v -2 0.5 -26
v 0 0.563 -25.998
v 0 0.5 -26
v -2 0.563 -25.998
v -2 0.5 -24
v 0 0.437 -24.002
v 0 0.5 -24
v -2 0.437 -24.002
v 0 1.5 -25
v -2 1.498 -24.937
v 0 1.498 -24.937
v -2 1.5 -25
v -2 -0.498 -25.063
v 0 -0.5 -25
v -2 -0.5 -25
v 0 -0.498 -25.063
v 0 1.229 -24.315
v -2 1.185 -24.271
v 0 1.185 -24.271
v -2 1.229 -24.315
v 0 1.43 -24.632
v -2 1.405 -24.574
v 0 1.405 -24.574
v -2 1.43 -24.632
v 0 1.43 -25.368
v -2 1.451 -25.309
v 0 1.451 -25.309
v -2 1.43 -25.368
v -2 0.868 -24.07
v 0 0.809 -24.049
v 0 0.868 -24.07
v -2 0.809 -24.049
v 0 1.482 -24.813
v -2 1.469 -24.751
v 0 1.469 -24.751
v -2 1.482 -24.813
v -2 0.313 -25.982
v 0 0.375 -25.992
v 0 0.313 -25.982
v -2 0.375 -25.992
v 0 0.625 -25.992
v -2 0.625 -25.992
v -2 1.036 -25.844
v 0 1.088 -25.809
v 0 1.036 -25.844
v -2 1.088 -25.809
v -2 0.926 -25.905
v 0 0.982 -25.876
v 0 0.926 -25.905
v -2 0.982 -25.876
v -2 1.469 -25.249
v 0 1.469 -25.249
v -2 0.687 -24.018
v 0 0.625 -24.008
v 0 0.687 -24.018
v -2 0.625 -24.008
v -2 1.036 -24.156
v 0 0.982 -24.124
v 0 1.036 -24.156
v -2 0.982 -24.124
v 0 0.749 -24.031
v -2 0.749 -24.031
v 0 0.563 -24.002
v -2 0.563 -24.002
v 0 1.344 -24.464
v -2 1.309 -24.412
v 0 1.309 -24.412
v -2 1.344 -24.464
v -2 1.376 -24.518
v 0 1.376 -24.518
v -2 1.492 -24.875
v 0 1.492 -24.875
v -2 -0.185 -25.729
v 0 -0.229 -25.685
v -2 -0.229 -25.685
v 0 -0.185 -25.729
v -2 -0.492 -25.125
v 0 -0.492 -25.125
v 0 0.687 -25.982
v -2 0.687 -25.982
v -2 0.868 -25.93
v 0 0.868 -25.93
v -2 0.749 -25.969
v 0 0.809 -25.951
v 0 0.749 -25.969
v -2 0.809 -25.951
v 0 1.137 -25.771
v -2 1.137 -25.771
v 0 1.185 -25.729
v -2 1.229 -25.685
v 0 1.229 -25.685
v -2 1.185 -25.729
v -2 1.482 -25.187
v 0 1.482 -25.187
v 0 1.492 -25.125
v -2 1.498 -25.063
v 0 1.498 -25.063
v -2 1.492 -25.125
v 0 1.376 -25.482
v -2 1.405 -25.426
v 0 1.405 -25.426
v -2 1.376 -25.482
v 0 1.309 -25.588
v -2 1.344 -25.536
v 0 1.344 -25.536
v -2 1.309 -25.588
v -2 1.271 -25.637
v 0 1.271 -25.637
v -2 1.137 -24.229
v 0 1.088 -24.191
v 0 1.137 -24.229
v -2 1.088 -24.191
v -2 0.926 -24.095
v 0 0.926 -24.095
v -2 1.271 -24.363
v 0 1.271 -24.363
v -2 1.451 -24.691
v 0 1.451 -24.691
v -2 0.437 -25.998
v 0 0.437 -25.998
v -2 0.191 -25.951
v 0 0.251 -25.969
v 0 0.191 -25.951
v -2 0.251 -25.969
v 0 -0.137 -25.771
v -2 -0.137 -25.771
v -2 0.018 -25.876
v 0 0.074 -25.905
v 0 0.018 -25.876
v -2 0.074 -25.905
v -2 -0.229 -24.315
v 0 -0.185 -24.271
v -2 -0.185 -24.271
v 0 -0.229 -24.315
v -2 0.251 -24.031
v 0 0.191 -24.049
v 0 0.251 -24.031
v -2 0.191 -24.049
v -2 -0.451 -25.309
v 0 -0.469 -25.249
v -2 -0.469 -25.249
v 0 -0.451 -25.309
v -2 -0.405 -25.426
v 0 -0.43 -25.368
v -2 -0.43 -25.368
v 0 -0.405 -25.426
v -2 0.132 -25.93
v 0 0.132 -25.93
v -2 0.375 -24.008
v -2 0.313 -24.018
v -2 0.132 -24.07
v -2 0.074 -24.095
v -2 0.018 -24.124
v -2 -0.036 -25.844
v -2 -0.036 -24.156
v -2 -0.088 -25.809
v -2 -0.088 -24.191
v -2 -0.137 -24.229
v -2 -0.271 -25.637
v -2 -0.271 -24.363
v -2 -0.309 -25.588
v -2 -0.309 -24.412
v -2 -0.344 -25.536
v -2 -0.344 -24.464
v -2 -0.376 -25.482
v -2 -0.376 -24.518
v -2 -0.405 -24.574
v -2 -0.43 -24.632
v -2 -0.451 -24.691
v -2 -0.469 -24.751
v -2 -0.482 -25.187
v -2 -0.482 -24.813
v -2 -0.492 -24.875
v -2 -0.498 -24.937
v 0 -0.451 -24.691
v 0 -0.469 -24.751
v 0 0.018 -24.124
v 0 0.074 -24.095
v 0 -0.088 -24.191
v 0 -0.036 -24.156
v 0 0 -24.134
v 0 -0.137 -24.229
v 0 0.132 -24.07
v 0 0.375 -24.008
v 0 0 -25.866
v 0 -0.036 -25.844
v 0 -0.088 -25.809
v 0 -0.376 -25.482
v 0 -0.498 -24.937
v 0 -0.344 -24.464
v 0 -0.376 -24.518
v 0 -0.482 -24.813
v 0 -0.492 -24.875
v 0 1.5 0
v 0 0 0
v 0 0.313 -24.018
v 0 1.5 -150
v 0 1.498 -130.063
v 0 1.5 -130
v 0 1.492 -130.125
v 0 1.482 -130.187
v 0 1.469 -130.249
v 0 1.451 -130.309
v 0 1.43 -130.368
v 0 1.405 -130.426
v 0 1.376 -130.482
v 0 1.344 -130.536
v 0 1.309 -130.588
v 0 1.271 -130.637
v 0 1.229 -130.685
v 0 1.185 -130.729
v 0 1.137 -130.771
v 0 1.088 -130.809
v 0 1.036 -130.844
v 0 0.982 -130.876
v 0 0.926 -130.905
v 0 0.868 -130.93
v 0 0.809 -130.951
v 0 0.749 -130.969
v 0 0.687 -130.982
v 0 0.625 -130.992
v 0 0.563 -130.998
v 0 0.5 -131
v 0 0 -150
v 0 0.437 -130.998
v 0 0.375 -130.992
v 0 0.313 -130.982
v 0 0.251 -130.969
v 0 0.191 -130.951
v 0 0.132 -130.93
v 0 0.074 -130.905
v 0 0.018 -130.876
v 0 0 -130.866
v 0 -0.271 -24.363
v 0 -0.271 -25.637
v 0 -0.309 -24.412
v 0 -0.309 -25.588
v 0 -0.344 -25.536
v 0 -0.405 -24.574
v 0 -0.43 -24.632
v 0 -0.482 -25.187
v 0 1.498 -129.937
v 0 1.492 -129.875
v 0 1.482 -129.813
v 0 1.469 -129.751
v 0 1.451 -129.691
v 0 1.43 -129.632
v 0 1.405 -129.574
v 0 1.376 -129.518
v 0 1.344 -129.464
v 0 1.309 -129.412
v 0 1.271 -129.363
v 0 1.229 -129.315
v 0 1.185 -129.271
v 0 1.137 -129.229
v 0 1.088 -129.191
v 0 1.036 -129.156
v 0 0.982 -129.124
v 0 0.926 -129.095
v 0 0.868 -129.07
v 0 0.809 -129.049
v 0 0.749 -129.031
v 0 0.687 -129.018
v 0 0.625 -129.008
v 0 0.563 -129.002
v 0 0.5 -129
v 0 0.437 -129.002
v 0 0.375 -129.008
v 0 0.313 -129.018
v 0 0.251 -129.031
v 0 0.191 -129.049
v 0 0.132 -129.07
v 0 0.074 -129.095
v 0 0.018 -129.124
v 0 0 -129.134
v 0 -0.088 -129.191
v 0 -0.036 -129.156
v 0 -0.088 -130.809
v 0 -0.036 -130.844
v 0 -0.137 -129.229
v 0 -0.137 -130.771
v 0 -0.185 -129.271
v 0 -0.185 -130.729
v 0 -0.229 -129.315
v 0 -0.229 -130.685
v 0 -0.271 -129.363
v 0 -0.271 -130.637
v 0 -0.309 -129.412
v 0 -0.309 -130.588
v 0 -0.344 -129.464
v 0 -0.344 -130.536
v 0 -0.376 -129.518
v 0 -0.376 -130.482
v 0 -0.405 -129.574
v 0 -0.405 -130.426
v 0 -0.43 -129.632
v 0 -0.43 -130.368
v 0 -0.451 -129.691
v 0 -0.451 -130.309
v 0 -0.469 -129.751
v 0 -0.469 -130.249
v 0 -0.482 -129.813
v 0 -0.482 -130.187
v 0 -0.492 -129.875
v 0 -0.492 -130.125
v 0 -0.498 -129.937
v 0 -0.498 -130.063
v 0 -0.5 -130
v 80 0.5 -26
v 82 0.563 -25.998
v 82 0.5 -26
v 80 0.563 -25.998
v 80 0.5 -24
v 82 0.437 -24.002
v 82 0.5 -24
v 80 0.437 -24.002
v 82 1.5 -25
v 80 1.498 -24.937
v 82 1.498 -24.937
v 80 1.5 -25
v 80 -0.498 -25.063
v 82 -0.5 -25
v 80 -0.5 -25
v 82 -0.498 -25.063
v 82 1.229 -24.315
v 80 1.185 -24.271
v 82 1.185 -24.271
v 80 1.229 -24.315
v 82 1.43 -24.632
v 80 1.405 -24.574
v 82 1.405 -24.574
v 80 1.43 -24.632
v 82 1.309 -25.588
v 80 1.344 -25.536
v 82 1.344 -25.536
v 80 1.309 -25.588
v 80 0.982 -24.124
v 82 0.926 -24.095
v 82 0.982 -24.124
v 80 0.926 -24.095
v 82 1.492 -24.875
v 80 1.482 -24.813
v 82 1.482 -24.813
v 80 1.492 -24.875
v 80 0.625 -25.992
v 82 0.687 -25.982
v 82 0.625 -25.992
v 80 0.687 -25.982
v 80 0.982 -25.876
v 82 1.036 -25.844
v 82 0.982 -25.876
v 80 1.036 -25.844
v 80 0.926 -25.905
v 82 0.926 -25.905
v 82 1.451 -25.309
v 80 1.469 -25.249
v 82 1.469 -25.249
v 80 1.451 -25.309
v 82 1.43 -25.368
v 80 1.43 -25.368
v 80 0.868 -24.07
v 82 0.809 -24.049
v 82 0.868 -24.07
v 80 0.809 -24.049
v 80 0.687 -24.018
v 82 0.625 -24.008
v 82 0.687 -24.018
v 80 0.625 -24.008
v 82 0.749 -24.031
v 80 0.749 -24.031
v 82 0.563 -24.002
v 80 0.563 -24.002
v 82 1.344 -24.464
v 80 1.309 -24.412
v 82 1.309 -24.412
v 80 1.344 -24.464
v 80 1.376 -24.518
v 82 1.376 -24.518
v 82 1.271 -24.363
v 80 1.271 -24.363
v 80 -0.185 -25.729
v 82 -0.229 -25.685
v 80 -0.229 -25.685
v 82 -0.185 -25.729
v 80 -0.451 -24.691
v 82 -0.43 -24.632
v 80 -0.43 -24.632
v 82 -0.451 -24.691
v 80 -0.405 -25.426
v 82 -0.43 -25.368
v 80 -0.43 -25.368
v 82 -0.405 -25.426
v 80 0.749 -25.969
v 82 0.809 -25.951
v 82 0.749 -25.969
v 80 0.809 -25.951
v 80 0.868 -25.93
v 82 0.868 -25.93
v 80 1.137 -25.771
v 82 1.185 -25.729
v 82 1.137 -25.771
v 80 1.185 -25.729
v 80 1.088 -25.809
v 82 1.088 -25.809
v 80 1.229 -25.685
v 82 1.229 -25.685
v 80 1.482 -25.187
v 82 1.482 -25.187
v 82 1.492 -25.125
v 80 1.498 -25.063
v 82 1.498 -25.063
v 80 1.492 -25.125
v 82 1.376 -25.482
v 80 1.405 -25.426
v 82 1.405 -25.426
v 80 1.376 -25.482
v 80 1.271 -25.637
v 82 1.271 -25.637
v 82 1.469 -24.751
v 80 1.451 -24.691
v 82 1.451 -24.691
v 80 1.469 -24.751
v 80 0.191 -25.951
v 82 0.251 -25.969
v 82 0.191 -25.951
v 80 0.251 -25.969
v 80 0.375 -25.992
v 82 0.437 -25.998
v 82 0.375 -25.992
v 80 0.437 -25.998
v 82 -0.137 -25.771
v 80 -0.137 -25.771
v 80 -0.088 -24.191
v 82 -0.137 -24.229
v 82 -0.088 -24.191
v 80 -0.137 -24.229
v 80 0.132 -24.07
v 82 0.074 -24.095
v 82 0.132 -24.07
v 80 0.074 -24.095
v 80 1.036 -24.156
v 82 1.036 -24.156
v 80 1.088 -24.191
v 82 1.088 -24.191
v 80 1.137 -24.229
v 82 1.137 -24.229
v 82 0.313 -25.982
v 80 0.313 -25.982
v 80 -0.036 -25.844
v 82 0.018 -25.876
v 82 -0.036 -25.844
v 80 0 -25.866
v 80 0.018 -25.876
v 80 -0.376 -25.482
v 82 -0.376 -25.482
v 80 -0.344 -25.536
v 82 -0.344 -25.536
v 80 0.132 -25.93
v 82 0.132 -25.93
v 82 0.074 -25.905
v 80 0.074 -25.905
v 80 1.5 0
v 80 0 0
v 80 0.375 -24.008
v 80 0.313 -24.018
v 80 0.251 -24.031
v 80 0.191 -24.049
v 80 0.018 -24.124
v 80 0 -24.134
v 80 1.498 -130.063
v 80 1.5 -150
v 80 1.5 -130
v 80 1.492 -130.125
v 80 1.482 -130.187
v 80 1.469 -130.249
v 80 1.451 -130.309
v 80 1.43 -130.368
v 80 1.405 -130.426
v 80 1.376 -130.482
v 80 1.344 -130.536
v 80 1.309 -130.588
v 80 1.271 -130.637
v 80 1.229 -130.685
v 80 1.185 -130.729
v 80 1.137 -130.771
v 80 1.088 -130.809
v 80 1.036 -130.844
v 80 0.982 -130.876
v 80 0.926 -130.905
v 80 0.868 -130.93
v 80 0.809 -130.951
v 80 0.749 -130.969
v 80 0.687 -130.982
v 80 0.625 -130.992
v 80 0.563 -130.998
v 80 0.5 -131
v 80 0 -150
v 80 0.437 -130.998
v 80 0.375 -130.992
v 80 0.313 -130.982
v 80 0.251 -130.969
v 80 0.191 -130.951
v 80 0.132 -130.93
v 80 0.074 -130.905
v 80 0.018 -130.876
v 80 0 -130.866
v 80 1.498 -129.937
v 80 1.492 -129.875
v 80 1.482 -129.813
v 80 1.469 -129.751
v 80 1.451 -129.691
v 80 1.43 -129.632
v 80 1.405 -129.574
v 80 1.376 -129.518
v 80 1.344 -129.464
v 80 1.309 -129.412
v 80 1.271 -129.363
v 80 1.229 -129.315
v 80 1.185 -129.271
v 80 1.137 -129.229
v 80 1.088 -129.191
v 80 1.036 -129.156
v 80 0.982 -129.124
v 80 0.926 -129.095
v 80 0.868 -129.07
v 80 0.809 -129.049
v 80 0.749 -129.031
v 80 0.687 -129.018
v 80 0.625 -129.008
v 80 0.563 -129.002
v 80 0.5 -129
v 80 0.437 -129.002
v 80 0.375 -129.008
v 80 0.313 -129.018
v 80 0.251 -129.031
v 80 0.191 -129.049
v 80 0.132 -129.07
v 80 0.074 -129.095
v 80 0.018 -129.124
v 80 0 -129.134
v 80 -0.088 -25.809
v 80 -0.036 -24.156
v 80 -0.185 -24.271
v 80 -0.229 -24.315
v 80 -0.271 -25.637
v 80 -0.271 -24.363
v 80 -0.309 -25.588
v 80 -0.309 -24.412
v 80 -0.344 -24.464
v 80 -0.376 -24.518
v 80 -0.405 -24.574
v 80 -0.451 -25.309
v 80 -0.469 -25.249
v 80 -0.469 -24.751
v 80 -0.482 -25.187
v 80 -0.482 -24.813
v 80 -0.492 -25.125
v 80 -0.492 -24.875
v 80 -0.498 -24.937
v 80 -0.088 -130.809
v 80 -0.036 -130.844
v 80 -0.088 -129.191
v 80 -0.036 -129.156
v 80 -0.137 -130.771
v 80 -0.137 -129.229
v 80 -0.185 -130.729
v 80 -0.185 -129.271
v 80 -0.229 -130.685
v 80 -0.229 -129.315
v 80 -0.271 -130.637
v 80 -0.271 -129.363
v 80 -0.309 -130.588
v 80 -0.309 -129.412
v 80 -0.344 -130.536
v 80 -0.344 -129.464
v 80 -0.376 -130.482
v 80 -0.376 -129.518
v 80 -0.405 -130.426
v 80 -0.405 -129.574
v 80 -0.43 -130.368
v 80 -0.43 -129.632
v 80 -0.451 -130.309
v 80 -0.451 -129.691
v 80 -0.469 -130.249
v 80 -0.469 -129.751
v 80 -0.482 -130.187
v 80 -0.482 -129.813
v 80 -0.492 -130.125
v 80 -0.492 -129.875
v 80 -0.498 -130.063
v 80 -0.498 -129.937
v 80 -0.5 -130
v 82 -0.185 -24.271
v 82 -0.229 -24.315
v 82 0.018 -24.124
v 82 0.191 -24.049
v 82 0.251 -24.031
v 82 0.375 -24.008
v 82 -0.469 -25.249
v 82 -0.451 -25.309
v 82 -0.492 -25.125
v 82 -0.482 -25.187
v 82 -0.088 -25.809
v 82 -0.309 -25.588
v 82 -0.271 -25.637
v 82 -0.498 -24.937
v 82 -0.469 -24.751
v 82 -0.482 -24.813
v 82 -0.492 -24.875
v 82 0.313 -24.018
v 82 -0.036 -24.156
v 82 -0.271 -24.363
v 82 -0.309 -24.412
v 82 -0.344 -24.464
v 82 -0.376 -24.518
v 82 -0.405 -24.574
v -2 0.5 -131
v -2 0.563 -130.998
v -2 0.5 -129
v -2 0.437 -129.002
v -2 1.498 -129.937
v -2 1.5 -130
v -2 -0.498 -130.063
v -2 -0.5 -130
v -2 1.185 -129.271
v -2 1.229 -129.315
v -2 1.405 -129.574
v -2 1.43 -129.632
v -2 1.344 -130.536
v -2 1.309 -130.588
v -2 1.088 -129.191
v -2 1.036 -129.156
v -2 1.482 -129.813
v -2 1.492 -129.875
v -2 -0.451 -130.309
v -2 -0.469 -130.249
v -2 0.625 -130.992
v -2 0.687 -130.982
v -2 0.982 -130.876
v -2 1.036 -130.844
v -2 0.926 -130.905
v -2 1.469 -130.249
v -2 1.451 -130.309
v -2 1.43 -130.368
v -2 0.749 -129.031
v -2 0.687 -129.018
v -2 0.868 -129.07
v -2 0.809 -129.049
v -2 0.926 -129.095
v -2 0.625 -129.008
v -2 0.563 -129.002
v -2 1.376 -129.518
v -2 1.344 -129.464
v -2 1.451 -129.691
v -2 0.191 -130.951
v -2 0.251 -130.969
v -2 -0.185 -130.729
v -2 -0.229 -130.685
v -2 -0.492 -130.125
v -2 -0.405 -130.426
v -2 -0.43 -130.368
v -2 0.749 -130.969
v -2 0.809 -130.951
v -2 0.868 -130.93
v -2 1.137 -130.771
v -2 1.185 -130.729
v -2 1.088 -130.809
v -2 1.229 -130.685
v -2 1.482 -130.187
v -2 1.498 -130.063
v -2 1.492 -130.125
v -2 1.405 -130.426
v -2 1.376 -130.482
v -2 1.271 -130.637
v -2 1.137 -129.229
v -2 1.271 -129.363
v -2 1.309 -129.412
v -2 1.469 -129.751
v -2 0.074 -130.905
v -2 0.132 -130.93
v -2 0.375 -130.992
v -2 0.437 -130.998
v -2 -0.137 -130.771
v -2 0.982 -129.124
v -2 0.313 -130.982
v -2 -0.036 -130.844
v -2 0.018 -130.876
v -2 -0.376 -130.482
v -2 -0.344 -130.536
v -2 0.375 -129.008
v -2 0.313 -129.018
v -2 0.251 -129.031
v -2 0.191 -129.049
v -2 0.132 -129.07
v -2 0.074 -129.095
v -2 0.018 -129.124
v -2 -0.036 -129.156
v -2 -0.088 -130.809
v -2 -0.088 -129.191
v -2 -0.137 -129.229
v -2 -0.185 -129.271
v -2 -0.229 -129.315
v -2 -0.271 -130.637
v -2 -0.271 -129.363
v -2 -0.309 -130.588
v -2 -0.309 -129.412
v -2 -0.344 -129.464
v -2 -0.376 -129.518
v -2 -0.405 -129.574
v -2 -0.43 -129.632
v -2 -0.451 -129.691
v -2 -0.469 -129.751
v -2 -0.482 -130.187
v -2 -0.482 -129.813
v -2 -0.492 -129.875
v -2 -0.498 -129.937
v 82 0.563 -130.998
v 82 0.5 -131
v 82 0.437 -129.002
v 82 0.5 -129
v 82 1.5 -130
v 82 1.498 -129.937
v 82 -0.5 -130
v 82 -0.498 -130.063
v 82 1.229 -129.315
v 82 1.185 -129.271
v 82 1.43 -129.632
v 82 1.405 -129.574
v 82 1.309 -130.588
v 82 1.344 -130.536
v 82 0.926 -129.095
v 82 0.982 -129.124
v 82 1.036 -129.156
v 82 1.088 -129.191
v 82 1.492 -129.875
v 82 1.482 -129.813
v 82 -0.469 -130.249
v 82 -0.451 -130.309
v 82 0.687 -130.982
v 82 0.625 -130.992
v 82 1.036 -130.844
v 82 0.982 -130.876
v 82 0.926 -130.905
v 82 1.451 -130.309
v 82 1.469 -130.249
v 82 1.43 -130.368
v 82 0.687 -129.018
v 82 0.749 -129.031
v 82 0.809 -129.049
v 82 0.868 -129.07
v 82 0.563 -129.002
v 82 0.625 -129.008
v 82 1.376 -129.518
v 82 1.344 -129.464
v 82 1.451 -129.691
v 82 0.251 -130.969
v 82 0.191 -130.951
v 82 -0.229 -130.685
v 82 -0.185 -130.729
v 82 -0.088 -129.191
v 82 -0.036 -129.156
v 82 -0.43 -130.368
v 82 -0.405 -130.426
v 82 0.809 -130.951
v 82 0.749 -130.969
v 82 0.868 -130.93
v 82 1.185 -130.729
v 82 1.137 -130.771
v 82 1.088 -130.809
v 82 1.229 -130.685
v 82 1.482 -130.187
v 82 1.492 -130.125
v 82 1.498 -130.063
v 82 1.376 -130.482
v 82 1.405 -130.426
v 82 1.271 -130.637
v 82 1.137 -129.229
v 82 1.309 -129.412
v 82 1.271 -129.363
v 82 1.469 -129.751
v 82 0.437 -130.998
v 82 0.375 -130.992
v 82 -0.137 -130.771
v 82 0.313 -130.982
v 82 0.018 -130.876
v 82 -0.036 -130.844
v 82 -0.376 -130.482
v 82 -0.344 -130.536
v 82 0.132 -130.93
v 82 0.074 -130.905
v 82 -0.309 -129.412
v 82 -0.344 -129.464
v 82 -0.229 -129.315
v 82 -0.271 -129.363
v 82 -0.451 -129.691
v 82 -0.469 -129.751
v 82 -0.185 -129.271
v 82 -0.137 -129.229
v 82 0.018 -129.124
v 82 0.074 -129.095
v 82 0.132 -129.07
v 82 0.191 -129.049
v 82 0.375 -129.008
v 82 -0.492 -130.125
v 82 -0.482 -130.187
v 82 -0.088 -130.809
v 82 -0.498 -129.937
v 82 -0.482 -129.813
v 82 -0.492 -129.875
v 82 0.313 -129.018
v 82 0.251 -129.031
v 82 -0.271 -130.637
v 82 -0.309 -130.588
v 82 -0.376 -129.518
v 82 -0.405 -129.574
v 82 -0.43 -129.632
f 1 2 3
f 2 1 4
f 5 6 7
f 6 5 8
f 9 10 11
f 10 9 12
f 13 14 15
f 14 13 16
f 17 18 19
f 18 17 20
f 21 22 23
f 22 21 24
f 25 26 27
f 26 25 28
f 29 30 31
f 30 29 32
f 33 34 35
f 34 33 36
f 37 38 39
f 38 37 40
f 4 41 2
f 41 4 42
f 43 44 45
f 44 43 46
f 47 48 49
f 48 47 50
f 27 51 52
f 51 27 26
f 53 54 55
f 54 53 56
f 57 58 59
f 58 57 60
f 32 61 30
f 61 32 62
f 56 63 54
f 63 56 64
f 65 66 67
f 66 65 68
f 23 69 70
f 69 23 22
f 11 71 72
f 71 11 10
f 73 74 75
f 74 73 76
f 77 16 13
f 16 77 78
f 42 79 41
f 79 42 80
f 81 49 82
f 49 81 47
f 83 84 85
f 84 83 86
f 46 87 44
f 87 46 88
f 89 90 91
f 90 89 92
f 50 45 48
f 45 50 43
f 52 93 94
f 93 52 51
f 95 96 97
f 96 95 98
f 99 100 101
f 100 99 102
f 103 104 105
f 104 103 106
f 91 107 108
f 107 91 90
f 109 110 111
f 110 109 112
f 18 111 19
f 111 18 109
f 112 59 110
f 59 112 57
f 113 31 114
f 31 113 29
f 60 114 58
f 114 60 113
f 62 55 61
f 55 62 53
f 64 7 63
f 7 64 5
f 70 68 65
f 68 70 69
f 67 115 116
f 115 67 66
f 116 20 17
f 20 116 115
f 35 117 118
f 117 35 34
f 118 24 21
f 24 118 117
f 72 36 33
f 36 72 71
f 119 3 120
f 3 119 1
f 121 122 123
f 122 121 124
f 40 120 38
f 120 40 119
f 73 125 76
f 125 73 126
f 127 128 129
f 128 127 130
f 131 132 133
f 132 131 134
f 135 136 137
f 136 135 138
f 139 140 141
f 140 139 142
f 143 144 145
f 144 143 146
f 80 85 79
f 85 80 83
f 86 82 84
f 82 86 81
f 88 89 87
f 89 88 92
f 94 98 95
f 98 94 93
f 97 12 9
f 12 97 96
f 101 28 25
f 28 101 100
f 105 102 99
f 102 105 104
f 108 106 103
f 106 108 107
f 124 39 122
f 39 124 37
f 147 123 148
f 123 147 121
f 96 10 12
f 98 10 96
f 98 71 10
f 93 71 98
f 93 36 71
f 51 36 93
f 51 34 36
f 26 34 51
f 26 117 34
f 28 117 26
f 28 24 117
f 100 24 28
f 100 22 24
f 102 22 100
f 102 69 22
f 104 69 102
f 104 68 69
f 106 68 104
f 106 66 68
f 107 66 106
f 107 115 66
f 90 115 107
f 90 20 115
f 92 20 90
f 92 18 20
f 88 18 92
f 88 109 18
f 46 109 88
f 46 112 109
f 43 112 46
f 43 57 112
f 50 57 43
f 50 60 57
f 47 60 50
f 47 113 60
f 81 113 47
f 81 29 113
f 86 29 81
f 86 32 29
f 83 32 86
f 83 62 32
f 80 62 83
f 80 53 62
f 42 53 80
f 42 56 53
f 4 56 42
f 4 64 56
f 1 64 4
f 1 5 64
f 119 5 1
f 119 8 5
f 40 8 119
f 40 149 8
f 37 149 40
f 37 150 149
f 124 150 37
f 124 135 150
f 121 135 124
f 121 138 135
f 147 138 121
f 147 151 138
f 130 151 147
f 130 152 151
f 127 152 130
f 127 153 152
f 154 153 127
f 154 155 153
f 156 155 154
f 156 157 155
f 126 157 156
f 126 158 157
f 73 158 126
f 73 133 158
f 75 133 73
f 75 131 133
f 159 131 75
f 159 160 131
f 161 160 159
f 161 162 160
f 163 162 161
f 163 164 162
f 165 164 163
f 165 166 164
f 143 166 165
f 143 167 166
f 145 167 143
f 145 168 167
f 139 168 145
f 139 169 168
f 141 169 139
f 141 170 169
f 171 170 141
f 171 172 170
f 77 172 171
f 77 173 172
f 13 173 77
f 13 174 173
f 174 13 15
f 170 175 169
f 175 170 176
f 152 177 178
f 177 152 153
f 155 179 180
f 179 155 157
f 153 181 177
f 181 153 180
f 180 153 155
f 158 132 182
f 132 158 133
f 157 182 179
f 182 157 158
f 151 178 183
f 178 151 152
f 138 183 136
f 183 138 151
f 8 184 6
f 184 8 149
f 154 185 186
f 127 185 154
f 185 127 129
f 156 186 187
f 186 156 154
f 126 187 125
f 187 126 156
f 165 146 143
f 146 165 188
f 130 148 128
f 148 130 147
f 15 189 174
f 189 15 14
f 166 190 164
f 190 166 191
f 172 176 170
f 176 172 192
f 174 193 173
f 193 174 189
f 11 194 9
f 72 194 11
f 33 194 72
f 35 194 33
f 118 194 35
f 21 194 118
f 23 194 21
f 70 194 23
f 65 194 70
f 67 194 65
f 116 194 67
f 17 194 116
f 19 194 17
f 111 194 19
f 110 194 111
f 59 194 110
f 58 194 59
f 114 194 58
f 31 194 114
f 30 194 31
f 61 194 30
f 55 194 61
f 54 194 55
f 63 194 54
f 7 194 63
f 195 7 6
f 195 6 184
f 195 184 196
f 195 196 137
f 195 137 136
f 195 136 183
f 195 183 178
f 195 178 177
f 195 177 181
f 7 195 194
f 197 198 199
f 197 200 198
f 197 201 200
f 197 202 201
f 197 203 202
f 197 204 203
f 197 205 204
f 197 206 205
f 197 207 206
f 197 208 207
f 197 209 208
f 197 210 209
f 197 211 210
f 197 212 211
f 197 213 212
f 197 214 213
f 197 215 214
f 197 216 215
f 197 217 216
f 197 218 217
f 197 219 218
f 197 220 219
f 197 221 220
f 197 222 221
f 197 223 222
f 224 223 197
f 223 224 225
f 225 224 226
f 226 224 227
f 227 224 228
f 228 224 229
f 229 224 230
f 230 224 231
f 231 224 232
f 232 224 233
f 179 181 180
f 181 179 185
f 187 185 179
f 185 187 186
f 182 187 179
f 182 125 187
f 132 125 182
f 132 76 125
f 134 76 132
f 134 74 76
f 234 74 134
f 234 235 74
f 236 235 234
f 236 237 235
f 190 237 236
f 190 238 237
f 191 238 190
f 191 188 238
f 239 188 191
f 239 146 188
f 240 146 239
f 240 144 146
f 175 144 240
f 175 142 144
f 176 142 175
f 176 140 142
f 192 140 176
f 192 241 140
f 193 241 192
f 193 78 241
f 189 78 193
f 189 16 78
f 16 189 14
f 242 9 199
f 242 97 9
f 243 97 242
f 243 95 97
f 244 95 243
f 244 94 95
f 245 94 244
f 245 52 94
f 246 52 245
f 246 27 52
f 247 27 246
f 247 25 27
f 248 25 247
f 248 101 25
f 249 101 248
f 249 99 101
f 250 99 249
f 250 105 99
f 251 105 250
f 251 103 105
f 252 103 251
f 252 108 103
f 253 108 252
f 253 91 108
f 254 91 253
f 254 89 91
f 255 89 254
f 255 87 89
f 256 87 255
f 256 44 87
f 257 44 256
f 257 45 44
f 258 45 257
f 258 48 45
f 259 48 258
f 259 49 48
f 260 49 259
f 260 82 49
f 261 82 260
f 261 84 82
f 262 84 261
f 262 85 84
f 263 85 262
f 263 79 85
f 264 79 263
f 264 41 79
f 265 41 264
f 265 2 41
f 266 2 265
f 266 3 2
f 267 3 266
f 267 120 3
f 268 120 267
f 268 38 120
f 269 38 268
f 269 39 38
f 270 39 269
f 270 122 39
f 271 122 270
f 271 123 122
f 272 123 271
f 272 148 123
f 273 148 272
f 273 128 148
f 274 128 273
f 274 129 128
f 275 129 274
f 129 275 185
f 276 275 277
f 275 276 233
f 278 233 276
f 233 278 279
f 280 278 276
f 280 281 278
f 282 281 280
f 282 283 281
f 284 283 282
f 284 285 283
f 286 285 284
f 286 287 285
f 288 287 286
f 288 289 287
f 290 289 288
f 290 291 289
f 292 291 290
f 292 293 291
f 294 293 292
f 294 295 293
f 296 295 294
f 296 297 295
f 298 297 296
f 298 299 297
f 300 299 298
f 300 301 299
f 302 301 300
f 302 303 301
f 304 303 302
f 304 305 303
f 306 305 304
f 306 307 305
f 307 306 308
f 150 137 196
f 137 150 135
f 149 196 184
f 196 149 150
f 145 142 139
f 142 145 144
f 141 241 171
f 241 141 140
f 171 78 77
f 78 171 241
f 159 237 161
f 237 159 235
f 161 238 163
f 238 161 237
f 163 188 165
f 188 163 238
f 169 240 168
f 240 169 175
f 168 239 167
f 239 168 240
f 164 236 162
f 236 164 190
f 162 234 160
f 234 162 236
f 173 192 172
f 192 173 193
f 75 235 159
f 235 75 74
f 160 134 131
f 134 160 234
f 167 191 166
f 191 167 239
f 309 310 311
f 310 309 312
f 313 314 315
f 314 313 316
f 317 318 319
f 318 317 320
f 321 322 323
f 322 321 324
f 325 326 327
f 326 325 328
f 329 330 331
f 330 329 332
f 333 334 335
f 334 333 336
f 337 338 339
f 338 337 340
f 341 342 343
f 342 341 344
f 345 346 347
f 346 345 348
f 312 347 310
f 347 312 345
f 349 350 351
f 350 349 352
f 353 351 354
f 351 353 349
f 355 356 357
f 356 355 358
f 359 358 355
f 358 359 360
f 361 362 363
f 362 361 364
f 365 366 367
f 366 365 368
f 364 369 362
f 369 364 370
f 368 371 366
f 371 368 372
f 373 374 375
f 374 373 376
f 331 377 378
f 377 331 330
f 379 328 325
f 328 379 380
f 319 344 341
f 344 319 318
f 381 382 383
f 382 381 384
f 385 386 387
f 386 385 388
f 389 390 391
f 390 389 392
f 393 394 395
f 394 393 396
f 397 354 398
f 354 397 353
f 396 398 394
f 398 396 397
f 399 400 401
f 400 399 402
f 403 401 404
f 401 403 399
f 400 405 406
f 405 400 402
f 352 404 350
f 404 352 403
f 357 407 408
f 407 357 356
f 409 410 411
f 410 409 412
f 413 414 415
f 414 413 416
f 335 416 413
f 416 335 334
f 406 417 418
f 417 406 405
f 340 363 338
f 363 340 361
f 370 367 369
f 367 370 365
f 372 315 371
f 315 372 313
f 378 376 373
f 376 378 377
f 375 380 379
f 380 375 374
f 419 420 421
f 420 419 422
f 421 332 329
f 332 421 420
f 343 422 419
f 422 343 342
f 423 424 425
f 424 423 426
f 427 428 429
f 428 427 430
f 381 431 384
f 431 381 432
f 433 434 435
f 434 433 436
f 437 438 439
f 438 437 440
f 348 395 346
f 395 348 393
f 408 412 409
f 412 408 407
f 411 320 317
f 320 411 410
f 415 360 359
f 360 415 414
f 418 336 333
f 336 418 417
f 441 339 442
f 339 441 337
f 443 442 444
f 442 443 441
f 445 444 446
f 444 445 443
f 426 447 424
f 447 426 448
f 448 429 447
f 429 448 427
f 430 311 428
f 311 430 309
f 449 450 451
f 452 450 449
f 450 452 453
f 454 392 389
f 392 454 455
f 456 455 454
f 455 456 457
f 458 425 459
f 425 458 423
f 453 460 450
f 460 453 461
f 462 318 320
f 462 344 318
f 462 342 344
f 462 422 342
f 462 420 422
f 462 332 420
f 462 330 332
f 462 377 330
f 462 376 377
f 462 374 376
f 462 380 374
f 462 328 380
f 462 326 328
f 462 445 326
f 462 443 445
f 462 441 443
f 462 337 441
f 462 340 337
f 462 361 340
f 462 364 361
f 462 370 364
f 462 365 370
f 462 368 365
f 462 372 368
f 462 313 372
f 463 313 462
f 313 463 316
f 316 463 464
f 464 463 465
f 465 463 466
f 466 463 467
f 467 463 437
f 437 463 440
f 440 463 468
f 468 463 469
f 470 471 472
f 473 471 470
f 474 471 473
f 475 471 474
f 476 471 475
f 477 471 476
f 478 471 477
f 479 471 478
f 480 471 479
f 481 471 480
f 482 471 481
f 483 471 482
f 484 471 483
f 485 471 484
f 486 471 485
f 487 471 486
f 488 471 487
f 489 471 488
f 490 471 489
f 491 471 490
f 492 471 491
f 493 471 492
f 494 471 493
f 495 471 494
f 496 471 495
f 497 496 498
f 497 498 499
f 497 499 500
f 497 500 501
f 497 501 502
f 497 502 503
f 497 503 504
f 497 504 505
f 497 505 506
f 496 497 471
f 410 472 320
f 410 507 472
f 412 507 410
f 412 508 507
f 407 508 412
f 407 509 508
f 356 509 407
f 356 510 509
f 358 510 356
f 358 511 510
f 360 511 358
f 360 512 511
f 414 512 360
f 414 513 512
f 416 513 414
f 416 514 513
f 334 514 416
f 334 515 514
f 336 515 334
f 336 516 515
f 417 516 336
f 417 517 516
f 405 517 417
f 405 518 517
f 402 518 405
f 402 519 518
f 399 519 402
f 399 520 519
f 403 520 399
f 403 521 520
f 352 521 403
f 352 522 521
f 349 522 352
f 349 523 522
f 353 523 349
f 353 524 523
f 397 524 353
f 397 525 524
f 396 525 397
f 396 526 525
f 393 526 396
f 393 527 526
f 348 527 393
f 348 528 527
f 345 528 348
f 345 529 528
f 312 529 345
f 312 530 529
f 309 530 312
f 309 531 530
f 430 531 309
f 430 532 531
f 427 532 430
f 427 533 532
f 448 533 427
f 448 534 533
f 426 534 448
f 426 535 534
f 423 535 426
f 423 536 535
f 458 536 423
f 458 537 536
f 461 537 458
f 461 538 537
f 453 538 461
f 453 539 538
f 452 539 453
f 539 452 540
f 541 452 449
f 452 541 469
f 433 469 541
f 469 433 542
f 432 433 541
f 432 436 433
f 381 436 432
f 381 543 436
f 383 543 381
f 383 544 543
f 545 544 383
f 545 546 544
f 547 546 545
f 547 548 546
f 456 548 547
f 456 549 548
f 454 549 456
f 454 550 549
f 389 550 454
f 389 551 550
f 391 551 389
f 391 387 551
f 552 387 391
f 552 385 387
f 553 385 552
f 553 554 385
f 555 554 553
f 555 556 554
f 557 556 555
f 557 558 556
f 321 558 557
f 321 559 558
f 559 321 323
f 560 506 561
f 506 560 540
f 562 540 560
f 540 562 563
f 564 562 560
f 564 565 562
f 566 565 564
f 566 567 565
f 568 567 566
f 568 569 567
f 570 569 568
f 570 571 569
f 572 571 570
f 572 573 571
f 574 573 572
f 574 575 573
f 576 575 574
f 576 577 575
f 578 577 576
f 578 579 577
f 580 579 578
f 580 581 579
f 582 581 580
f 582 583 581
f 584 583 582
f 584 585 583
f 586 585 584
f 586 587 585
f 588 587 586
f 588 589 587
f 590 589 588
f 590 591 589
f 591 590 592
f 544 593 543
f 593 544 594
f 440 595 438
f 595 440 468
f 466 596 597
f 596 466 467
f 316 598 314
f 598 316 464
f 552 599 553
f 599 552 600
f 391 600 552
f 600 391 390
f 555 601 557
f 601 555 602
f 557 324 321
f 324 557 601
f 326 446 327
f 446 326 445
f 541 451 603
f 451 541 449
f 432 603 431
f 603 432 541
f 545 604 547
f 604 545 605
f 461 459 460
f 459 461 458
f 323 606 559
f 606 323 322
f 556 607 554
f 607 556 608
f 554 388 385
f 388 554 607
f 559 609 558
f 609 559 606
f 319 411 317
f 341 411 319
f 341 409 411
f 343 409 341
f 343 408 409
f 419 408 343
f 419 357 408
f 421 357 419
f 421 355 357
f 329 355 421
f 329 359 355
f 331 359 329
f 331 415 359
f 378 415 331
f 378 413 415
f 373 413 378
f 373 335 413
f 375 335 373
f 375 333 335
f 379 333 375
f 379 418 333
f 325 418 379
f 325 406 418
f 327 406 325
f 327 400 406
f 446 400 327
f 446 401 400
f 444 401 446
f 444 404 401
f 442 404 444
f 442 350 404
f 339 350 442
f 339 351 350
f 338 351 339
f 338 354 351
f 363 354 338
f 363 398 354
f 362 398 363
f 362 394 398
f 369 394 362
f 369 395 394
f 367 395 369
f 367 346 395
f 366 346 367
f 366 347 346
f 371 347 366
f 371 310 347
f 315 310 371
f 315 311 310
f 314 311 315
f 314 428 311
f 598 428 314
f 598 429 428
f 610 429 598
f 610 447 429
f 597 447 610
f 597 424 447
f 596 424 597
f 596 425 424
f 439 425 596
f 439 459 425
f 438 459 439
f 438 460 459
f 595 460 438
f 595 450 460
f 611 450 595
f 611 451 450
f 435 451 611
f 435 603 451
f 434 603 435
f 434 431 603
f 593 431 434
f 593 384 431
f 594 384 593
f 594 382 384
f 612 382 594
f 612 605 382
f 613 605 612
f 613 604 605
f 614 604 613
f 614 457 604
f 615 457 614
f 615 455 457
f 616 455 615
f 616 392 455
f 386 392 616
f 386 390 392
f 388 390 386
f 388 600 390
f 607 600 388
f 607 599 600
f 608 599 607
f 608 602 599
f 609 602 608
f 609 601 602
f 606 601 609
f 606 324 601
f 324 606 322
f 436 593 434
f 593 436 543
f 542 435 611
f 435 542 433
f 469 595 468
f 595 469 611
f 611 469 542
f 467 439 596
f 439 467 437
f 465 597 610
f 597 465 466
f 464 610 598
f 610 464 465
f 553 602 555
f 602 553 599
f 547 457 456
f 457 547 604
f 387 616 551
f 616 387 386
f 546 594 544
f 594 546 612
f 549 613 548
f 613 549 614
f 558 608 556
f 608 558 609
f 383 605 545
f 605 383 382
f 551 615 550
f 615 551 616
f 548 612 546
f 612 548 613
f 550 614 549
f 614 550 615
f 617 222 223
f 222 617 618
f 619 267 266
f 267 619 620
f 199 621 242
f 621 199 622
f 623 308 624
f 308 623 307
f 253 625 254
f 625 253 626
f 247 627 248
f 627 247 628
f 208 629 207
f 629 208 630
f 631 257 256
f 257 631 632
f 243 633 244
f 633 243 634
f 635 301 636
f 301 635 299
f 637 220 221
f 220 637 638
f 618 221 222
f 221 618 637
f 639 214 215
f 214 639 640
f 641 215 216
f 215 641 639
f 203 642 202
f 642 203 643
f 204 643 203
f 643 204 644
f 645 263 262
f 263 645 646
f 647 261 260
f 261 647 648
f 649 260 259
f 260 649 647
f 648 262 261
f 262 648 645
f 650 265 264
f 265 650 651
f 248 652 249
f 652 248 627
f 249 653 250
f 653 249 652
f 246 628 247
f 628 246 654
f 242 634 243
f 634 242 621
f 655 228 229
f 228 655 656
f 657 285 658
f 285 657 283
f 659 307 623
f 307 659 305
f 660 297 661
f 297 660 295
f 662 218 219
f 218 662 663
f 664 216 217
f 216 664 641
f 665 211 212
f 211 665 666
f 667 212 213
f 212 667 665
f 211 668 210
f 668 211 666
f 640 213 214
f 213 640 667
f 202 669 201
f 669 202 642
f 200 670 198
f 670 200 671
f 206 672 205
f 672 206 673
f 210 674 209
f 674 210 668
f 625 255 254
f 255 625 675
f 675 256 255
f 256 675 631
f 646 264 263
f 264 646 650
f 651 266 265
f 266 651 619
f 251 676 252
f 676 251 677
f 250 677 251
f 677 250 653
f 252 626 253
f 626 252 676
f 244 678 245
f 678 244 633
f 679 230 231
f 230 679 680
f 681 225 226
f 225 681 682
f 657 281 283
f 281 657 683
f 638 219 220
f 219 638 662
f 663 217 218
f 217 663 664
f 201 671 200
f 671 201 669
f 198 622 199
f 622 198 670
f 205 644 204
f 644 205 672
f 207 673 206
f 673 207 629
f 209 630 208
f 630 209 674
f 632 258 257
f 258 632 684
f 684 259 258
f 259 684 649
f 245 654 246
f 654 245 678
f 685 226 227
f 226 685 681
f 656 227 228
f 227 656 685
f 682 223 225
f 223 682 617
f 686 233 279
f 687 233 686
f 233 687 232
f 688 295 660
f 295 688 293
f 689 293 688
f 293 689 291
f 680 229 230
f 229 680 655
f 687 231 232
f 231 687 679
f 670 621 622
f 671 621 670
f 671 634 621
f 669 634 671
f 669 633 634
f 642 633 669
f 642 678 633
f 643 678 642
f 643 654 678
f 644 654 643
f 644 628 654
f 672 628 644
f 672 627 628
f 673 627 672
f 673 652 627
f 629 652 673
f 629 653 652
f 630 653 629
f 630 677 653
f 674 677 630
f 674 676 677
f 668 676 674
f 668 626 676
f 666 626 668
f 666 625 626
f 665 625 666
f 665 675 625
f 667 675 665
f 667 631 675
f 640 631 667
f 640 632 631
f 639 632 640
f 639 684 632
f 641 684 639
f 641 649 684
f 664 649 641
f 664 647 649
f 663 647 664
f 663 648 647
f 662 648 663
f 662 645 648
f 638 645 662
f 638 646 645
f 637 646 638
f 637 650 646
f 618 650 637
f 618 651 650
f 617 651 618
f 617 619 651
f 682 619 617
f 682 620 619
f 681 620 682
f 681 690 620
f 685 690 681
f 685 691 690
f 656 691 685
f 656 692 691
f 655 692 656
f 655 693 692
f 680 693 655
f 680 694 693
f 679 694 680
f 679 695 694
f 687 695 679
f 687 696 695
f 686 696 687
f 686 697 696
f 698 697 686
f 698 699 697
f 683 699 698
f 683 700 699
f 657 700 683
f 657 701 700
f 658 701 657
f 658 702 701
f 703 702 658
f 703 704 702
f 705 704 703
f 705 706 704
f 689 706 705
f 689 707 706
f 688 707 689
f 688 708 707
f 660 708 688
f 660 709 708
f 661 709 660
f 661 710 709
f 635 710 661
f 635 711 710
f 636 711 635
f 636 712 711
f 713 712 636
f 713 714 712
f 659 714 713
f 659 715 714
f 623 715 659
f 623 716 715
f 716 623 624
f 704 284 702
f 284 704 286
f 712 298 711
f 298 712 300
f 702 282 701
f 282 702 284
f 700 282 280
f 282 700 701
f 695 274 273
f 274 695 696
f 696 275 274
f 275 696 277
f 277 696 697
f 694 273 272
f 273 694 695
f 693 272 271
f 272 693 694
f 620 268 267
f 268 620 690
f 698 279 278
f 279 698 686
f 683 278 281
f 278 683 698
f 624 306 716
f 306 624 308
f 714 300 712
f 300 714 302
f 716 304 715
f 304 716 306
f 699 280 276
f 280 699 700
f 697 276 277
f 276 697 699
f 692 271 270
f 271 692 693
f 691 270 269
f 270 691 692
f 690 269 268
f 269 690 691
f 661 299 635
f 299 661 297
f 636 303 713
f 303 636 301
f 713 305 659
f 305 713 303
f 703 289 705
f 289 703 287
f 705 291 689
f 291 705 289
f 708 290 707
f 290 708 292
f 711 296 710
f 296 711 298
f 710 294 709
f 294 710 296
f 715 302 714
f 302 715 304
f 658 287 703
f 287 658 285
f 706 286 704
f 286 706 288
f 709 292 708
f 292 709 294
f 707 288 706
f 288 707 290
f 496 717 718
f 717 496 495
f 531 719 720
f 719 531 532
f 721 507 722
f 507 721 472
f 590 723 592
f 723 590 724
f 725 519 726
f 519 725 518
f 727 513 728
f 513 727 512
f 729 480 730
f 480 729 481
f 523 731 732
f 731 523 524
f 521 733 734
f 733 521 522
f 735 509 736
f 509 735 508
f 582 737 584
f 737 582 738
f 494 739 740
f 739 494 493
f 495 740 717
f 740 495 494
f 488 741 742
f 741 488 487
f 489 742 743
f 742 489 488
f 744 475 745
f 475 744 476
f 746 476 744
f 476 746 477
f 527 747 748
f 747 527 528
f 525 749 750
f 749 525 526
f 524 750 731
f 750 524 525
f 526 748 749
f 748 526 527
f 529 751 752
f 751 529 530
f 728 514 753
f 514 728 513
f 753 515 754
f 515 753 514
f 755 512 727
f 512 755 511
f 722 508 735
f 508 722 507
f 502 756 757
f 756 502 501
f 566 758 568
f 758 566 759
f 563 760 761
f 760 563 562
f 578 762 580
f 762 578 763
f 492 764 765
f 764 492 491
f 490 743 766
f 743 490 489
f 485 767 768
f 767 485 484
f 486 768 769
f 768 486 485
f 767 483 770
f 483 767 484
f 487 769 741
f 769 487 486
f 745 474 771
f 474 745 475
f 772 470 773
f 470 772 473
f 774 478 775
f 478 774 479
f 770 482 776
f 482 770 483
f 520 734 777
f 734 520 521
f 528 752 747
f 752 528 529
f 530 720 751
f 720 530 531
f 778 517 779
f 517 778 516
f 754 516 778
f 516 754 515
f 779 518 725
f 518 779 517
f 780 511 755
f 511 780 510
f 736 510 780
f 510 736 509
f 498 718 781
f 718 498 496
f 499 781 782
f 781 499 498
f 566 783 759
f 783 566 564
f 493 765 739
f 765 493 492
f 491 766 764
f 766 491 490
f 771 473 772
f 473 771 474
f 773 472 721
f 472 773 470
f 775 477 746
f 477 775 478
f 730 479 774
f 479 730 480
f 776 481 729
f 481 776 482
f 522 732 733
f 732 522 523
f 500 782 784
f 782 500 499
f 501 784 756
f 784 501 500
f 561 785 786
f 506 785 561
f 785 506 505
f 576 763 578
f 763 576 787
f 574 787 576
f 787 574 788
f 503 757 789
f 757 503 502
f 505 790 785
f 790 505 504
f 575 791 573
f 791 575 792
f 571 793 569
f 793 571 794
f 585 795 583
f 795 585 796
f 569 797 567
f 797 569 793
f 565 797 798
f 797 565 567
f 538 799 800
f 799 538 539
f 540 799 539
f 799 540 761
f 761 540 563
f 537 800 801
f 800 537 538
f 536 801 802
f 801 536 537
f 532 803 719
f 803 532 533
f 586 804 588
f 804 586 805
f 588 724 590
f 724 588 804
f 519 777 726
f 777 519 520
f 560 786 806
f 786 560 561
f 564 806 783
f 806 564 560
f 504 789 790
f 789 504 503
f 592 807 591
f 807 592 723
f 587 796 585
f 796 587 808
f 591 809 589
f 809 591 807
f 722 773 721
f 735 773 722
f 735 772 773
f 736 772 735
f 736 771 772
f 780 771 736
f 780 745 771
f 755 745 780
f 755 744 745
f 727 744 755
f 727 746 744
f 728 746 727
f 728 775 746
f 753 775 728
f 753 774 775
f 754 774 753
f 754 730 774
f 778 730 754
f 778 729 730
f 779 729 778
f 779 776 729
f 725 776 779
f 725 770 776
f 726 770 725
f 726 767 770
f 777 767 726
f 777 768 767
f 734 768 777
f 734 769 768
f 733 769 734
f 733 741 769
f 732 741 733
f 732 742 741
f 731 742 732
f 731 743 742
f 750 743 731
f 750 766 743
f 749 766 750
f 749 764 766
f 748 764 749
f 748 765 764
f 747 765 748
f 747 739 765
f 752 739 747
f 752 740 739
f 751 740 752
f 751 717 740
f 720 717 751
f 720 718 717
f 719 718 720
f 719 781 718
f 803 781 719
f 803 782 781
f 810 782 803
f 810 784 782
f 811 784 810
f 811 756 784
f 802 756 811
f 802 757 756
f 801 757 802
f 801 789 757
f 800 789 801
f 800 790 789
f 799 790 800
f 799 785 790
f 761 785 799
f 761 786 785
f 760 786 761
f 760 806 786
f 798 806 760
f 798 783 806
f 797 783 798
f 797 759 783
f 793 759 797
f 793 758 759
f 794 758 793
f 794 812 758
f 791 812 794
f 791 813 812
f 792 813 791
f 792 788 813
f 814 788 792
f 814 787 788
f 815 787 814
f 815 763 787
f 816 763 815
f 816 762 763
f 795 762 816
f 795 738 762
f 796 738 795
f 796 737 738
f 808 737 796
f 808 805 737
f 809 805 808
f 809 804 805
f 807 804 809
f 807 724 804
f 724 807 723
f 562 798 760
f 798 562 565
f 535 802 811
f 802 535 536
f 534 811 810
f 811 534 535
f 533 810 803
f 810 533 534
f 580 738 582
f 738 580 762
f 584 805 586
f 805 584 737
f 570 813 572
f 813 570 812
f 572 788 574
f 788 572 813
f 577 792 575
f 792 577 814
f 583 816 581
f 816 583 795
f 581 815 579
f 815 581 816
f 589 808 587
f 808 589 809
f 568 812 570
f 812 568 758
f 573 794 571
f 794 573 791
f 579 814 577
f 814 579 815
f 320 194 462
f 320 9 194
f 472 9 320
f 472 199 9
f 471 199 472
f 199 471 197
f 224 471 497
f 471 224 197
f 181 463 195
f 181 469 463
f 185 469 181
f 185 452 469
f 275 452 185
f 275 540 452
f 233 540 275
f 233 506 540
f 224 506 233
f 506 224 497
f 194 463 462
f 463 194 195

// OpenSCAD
// file: ../../module-dimensions.scad
oneU = 43.66;
numberOfU = 1;
totalWidth = 450;
numberOfUnits = 5;
sizeOfEars = 5;
moduleWidth = (totalWidth - (sizeOfEars * 2)) / numberOfUnits;
moduleLength = 150;
moduleHeight = numberOfU * oneU;

wallThickness = 5;
threadedRodDiameter = 5;
threadedRodDiameterHole = 5.3;
surroundingDiameter = 2;
rodSurroundingDiameter = threadedRodDiameter + surroundingDiameter;
rodEarHeight = 5;
rodEarDistanceFromSide = rodSurroundingDiameter / 2 + surroundingDiameter;

points = [[0, 0, 0], [10, 0, 0], [0, 10, 0], [10, 10, 0]];

echo("rodSurroundingDiameter is", rodSurroundingDiameter);
// file: ../../utils/dovetails.scad
include <../module-dimensions.scad>

module moduleDovetails(moduleWidth, moduleLength, moduleHeight) {
    moduleDovetail(moduleWidth, moduleLength, moduleHeight);
    translate([moduleWidth, 0, moduleHeight]) rotate([0, 180, 0]) moduleDovetail(moduleWidth, moduleLength, moduleHeight);
}

module moduleDovetail(moduleWidth, moduleLength, moduleHeight) {
    translate([0, moduleLength + dovetailHeight, (dovetailEnclosureWidth - dovetailBaseMaxWidth) / 2 +
        dovetailMaxMinusMaxWidth]) rotate([180, 270, 0])
        linear_extrude(height = moduleWidth)
            union() {
                mainDovetailEnclosure(moduleWidth, moduleLength, moduleHeight);
                mainDovetailEnclosureLeftEar(moduleWidth, moduleLength, moduleHeight);
                mainDovetailEnclosureRightEar(moduleWidth, moduleLength, moduleHeight);
            }
}

module mainDovetailEnclosure(moduleWidth, moduleLength, moduleHeight) {
    difference() {
        mainDovetailEnclosureLayout(moduleWidth, moduleLength, moduleHeight);
        mainDovetailEnclosureDovetail(moduleWidth, moduleLength, moduleHeight);
    }
}

module mainDovetailEnclosureDovetail(moduleWidth, moduleLength, moduleHeight) {
    polygon(points = [[0, 0], [dovetailBaseMaxWidth, 0], [dovetailBaseMaxWidth +
        dovetailMaxMinusMaxWidth,
        dovetailHeight], [- dovetailMaxMinusMaxWidth, dovetailHeight]], paths = [[0, 1, 2, 3]],
    convexity = 1);
}

module mainDovetailEnclosureLayout(moduleWidth, moduleLength, moduleHeight) {
    translate([- (dovetailEnclosureWidth - dovetailBaseMaxWidth) / 2, 0]) square(size = [
        dovetailEnclosureWidth,
        dovetailEnclosureHeight]);
}

module mainDovetailEnclosureLeftEar(moduleWidth, moduleLength, moduleHeight) {
    translate([- (dovetailEnclosureWidth - dovetailBaseMaxWidth) / 2, 0, 0]) polygon(points = [[-
    dovetailMaxMinusMaxWidth, 0], [
        dovetailBaseMinWidth, 0], [- 0, dovetailEnclosureHeight], [- dovetailMaxMinusMaxWidth,
        dovetailEnclosureHeight
        ]], paths = [[0, 1, 2, 3]], convexity = 1);
}

module mainDovetailEnclosureRightEar(moduleWidth, moduleLength, moduleHeight) {
    translate([dovetailBaseMaxWidth + dovetailMaxMinusMaxWidth, 0, 0]) polygon(points = [[0, 0], [
        dovetailBaseMinWidth, 0], [0, dovetailEnclosureHeight], [dovetailMaxMinusMaxWidth,
        dovetailEnclosureHeight
        ]], paths = [[0, 1, 3, 2]], convexity = 1);
}
// file: slider dimensions.scad
usableSize = [80, 150, 1.5];
wireFrameHoleSize = 3;
wireFrameHoleSpace = 71.34;
DIN41612HoleSize = 2;
DIN41612SizeSpace = 58.34; 
DIN41612YDistance = 4.15;
sliderSize = [2.5, 2.5];
dovetailHeight = 3;
dovetailAngle = 15;
plateThickness = 1.5;
baseDovetailBottomHeight = tan(dovetailAngle)*dovetailHeight;
baseDovetailTopHeight = dovetailHeight -baseDovetailBottomHeight;
pinSize = [2,2];
frontPinsShift = 25;
rearPinsShift = 20;
// main file
include <slider dimensions.scad>
use <../../utils/dovetails.scad>

//slider();
sliderWithPins();

module sliderWithPins() {
    union() {
        slider_plate_pins();
        translate([0, 0, 0]) slider_plate();
    }
}

module slider() {
    union() {
        slider_dovetails();
        slider_plate();
    }
}

module slider_plate_pins() {
    union() {
        // Front pins
        translate([- pinSize.x, (plateThickness - (pinSize.x / 2)), - (frontPinsShift)]) pin();
        translate([usableSize[0], (plateThickness - (pinSize.x / 2)), - (frontPinsShift)]) pin();
        // Rear pins
        translate([- pinSize.x, (plateThickness - (pinSize.x / 2)), - usableSize[1] + rearPinsShift]) pin();
        translate([usableSize[0], (plateThickness - (pinSize.x / 2)), - usableSize[1] + rearPinsShift]) pin();
    }
}

module pin() {
    rotate([0, 90, 0])cylinder(h = pinSize.y, d = pinSize.y, center = false, $fn = 100);
}

module slider_plate() {
    rotate([270, 0, 0]) color("yellow") cube(usableSize);
}

module slider_single_dovetail() {
    echo(baseDovetailBottomHeight);
    echo(baseDovetailTopHeight);
    color("blue") linear_extrude(usableSize[1]) polygon(points = [[0, 0], [0, dovetailHeight], [dovetailHeight,
        baseDovetailTopHeight], [dovetailHeight, baseDovetailBottomHeight]]);
}

module slider_dovetails() {
    union() {
        color("red") slider_single_dovetail();
        translate([usableSize[0] + dovetailHeight * 2, 0, usableSize[1]]) color("blue") rotate([0, 180, 0])
            slider_single_dovetail();
    }
}
